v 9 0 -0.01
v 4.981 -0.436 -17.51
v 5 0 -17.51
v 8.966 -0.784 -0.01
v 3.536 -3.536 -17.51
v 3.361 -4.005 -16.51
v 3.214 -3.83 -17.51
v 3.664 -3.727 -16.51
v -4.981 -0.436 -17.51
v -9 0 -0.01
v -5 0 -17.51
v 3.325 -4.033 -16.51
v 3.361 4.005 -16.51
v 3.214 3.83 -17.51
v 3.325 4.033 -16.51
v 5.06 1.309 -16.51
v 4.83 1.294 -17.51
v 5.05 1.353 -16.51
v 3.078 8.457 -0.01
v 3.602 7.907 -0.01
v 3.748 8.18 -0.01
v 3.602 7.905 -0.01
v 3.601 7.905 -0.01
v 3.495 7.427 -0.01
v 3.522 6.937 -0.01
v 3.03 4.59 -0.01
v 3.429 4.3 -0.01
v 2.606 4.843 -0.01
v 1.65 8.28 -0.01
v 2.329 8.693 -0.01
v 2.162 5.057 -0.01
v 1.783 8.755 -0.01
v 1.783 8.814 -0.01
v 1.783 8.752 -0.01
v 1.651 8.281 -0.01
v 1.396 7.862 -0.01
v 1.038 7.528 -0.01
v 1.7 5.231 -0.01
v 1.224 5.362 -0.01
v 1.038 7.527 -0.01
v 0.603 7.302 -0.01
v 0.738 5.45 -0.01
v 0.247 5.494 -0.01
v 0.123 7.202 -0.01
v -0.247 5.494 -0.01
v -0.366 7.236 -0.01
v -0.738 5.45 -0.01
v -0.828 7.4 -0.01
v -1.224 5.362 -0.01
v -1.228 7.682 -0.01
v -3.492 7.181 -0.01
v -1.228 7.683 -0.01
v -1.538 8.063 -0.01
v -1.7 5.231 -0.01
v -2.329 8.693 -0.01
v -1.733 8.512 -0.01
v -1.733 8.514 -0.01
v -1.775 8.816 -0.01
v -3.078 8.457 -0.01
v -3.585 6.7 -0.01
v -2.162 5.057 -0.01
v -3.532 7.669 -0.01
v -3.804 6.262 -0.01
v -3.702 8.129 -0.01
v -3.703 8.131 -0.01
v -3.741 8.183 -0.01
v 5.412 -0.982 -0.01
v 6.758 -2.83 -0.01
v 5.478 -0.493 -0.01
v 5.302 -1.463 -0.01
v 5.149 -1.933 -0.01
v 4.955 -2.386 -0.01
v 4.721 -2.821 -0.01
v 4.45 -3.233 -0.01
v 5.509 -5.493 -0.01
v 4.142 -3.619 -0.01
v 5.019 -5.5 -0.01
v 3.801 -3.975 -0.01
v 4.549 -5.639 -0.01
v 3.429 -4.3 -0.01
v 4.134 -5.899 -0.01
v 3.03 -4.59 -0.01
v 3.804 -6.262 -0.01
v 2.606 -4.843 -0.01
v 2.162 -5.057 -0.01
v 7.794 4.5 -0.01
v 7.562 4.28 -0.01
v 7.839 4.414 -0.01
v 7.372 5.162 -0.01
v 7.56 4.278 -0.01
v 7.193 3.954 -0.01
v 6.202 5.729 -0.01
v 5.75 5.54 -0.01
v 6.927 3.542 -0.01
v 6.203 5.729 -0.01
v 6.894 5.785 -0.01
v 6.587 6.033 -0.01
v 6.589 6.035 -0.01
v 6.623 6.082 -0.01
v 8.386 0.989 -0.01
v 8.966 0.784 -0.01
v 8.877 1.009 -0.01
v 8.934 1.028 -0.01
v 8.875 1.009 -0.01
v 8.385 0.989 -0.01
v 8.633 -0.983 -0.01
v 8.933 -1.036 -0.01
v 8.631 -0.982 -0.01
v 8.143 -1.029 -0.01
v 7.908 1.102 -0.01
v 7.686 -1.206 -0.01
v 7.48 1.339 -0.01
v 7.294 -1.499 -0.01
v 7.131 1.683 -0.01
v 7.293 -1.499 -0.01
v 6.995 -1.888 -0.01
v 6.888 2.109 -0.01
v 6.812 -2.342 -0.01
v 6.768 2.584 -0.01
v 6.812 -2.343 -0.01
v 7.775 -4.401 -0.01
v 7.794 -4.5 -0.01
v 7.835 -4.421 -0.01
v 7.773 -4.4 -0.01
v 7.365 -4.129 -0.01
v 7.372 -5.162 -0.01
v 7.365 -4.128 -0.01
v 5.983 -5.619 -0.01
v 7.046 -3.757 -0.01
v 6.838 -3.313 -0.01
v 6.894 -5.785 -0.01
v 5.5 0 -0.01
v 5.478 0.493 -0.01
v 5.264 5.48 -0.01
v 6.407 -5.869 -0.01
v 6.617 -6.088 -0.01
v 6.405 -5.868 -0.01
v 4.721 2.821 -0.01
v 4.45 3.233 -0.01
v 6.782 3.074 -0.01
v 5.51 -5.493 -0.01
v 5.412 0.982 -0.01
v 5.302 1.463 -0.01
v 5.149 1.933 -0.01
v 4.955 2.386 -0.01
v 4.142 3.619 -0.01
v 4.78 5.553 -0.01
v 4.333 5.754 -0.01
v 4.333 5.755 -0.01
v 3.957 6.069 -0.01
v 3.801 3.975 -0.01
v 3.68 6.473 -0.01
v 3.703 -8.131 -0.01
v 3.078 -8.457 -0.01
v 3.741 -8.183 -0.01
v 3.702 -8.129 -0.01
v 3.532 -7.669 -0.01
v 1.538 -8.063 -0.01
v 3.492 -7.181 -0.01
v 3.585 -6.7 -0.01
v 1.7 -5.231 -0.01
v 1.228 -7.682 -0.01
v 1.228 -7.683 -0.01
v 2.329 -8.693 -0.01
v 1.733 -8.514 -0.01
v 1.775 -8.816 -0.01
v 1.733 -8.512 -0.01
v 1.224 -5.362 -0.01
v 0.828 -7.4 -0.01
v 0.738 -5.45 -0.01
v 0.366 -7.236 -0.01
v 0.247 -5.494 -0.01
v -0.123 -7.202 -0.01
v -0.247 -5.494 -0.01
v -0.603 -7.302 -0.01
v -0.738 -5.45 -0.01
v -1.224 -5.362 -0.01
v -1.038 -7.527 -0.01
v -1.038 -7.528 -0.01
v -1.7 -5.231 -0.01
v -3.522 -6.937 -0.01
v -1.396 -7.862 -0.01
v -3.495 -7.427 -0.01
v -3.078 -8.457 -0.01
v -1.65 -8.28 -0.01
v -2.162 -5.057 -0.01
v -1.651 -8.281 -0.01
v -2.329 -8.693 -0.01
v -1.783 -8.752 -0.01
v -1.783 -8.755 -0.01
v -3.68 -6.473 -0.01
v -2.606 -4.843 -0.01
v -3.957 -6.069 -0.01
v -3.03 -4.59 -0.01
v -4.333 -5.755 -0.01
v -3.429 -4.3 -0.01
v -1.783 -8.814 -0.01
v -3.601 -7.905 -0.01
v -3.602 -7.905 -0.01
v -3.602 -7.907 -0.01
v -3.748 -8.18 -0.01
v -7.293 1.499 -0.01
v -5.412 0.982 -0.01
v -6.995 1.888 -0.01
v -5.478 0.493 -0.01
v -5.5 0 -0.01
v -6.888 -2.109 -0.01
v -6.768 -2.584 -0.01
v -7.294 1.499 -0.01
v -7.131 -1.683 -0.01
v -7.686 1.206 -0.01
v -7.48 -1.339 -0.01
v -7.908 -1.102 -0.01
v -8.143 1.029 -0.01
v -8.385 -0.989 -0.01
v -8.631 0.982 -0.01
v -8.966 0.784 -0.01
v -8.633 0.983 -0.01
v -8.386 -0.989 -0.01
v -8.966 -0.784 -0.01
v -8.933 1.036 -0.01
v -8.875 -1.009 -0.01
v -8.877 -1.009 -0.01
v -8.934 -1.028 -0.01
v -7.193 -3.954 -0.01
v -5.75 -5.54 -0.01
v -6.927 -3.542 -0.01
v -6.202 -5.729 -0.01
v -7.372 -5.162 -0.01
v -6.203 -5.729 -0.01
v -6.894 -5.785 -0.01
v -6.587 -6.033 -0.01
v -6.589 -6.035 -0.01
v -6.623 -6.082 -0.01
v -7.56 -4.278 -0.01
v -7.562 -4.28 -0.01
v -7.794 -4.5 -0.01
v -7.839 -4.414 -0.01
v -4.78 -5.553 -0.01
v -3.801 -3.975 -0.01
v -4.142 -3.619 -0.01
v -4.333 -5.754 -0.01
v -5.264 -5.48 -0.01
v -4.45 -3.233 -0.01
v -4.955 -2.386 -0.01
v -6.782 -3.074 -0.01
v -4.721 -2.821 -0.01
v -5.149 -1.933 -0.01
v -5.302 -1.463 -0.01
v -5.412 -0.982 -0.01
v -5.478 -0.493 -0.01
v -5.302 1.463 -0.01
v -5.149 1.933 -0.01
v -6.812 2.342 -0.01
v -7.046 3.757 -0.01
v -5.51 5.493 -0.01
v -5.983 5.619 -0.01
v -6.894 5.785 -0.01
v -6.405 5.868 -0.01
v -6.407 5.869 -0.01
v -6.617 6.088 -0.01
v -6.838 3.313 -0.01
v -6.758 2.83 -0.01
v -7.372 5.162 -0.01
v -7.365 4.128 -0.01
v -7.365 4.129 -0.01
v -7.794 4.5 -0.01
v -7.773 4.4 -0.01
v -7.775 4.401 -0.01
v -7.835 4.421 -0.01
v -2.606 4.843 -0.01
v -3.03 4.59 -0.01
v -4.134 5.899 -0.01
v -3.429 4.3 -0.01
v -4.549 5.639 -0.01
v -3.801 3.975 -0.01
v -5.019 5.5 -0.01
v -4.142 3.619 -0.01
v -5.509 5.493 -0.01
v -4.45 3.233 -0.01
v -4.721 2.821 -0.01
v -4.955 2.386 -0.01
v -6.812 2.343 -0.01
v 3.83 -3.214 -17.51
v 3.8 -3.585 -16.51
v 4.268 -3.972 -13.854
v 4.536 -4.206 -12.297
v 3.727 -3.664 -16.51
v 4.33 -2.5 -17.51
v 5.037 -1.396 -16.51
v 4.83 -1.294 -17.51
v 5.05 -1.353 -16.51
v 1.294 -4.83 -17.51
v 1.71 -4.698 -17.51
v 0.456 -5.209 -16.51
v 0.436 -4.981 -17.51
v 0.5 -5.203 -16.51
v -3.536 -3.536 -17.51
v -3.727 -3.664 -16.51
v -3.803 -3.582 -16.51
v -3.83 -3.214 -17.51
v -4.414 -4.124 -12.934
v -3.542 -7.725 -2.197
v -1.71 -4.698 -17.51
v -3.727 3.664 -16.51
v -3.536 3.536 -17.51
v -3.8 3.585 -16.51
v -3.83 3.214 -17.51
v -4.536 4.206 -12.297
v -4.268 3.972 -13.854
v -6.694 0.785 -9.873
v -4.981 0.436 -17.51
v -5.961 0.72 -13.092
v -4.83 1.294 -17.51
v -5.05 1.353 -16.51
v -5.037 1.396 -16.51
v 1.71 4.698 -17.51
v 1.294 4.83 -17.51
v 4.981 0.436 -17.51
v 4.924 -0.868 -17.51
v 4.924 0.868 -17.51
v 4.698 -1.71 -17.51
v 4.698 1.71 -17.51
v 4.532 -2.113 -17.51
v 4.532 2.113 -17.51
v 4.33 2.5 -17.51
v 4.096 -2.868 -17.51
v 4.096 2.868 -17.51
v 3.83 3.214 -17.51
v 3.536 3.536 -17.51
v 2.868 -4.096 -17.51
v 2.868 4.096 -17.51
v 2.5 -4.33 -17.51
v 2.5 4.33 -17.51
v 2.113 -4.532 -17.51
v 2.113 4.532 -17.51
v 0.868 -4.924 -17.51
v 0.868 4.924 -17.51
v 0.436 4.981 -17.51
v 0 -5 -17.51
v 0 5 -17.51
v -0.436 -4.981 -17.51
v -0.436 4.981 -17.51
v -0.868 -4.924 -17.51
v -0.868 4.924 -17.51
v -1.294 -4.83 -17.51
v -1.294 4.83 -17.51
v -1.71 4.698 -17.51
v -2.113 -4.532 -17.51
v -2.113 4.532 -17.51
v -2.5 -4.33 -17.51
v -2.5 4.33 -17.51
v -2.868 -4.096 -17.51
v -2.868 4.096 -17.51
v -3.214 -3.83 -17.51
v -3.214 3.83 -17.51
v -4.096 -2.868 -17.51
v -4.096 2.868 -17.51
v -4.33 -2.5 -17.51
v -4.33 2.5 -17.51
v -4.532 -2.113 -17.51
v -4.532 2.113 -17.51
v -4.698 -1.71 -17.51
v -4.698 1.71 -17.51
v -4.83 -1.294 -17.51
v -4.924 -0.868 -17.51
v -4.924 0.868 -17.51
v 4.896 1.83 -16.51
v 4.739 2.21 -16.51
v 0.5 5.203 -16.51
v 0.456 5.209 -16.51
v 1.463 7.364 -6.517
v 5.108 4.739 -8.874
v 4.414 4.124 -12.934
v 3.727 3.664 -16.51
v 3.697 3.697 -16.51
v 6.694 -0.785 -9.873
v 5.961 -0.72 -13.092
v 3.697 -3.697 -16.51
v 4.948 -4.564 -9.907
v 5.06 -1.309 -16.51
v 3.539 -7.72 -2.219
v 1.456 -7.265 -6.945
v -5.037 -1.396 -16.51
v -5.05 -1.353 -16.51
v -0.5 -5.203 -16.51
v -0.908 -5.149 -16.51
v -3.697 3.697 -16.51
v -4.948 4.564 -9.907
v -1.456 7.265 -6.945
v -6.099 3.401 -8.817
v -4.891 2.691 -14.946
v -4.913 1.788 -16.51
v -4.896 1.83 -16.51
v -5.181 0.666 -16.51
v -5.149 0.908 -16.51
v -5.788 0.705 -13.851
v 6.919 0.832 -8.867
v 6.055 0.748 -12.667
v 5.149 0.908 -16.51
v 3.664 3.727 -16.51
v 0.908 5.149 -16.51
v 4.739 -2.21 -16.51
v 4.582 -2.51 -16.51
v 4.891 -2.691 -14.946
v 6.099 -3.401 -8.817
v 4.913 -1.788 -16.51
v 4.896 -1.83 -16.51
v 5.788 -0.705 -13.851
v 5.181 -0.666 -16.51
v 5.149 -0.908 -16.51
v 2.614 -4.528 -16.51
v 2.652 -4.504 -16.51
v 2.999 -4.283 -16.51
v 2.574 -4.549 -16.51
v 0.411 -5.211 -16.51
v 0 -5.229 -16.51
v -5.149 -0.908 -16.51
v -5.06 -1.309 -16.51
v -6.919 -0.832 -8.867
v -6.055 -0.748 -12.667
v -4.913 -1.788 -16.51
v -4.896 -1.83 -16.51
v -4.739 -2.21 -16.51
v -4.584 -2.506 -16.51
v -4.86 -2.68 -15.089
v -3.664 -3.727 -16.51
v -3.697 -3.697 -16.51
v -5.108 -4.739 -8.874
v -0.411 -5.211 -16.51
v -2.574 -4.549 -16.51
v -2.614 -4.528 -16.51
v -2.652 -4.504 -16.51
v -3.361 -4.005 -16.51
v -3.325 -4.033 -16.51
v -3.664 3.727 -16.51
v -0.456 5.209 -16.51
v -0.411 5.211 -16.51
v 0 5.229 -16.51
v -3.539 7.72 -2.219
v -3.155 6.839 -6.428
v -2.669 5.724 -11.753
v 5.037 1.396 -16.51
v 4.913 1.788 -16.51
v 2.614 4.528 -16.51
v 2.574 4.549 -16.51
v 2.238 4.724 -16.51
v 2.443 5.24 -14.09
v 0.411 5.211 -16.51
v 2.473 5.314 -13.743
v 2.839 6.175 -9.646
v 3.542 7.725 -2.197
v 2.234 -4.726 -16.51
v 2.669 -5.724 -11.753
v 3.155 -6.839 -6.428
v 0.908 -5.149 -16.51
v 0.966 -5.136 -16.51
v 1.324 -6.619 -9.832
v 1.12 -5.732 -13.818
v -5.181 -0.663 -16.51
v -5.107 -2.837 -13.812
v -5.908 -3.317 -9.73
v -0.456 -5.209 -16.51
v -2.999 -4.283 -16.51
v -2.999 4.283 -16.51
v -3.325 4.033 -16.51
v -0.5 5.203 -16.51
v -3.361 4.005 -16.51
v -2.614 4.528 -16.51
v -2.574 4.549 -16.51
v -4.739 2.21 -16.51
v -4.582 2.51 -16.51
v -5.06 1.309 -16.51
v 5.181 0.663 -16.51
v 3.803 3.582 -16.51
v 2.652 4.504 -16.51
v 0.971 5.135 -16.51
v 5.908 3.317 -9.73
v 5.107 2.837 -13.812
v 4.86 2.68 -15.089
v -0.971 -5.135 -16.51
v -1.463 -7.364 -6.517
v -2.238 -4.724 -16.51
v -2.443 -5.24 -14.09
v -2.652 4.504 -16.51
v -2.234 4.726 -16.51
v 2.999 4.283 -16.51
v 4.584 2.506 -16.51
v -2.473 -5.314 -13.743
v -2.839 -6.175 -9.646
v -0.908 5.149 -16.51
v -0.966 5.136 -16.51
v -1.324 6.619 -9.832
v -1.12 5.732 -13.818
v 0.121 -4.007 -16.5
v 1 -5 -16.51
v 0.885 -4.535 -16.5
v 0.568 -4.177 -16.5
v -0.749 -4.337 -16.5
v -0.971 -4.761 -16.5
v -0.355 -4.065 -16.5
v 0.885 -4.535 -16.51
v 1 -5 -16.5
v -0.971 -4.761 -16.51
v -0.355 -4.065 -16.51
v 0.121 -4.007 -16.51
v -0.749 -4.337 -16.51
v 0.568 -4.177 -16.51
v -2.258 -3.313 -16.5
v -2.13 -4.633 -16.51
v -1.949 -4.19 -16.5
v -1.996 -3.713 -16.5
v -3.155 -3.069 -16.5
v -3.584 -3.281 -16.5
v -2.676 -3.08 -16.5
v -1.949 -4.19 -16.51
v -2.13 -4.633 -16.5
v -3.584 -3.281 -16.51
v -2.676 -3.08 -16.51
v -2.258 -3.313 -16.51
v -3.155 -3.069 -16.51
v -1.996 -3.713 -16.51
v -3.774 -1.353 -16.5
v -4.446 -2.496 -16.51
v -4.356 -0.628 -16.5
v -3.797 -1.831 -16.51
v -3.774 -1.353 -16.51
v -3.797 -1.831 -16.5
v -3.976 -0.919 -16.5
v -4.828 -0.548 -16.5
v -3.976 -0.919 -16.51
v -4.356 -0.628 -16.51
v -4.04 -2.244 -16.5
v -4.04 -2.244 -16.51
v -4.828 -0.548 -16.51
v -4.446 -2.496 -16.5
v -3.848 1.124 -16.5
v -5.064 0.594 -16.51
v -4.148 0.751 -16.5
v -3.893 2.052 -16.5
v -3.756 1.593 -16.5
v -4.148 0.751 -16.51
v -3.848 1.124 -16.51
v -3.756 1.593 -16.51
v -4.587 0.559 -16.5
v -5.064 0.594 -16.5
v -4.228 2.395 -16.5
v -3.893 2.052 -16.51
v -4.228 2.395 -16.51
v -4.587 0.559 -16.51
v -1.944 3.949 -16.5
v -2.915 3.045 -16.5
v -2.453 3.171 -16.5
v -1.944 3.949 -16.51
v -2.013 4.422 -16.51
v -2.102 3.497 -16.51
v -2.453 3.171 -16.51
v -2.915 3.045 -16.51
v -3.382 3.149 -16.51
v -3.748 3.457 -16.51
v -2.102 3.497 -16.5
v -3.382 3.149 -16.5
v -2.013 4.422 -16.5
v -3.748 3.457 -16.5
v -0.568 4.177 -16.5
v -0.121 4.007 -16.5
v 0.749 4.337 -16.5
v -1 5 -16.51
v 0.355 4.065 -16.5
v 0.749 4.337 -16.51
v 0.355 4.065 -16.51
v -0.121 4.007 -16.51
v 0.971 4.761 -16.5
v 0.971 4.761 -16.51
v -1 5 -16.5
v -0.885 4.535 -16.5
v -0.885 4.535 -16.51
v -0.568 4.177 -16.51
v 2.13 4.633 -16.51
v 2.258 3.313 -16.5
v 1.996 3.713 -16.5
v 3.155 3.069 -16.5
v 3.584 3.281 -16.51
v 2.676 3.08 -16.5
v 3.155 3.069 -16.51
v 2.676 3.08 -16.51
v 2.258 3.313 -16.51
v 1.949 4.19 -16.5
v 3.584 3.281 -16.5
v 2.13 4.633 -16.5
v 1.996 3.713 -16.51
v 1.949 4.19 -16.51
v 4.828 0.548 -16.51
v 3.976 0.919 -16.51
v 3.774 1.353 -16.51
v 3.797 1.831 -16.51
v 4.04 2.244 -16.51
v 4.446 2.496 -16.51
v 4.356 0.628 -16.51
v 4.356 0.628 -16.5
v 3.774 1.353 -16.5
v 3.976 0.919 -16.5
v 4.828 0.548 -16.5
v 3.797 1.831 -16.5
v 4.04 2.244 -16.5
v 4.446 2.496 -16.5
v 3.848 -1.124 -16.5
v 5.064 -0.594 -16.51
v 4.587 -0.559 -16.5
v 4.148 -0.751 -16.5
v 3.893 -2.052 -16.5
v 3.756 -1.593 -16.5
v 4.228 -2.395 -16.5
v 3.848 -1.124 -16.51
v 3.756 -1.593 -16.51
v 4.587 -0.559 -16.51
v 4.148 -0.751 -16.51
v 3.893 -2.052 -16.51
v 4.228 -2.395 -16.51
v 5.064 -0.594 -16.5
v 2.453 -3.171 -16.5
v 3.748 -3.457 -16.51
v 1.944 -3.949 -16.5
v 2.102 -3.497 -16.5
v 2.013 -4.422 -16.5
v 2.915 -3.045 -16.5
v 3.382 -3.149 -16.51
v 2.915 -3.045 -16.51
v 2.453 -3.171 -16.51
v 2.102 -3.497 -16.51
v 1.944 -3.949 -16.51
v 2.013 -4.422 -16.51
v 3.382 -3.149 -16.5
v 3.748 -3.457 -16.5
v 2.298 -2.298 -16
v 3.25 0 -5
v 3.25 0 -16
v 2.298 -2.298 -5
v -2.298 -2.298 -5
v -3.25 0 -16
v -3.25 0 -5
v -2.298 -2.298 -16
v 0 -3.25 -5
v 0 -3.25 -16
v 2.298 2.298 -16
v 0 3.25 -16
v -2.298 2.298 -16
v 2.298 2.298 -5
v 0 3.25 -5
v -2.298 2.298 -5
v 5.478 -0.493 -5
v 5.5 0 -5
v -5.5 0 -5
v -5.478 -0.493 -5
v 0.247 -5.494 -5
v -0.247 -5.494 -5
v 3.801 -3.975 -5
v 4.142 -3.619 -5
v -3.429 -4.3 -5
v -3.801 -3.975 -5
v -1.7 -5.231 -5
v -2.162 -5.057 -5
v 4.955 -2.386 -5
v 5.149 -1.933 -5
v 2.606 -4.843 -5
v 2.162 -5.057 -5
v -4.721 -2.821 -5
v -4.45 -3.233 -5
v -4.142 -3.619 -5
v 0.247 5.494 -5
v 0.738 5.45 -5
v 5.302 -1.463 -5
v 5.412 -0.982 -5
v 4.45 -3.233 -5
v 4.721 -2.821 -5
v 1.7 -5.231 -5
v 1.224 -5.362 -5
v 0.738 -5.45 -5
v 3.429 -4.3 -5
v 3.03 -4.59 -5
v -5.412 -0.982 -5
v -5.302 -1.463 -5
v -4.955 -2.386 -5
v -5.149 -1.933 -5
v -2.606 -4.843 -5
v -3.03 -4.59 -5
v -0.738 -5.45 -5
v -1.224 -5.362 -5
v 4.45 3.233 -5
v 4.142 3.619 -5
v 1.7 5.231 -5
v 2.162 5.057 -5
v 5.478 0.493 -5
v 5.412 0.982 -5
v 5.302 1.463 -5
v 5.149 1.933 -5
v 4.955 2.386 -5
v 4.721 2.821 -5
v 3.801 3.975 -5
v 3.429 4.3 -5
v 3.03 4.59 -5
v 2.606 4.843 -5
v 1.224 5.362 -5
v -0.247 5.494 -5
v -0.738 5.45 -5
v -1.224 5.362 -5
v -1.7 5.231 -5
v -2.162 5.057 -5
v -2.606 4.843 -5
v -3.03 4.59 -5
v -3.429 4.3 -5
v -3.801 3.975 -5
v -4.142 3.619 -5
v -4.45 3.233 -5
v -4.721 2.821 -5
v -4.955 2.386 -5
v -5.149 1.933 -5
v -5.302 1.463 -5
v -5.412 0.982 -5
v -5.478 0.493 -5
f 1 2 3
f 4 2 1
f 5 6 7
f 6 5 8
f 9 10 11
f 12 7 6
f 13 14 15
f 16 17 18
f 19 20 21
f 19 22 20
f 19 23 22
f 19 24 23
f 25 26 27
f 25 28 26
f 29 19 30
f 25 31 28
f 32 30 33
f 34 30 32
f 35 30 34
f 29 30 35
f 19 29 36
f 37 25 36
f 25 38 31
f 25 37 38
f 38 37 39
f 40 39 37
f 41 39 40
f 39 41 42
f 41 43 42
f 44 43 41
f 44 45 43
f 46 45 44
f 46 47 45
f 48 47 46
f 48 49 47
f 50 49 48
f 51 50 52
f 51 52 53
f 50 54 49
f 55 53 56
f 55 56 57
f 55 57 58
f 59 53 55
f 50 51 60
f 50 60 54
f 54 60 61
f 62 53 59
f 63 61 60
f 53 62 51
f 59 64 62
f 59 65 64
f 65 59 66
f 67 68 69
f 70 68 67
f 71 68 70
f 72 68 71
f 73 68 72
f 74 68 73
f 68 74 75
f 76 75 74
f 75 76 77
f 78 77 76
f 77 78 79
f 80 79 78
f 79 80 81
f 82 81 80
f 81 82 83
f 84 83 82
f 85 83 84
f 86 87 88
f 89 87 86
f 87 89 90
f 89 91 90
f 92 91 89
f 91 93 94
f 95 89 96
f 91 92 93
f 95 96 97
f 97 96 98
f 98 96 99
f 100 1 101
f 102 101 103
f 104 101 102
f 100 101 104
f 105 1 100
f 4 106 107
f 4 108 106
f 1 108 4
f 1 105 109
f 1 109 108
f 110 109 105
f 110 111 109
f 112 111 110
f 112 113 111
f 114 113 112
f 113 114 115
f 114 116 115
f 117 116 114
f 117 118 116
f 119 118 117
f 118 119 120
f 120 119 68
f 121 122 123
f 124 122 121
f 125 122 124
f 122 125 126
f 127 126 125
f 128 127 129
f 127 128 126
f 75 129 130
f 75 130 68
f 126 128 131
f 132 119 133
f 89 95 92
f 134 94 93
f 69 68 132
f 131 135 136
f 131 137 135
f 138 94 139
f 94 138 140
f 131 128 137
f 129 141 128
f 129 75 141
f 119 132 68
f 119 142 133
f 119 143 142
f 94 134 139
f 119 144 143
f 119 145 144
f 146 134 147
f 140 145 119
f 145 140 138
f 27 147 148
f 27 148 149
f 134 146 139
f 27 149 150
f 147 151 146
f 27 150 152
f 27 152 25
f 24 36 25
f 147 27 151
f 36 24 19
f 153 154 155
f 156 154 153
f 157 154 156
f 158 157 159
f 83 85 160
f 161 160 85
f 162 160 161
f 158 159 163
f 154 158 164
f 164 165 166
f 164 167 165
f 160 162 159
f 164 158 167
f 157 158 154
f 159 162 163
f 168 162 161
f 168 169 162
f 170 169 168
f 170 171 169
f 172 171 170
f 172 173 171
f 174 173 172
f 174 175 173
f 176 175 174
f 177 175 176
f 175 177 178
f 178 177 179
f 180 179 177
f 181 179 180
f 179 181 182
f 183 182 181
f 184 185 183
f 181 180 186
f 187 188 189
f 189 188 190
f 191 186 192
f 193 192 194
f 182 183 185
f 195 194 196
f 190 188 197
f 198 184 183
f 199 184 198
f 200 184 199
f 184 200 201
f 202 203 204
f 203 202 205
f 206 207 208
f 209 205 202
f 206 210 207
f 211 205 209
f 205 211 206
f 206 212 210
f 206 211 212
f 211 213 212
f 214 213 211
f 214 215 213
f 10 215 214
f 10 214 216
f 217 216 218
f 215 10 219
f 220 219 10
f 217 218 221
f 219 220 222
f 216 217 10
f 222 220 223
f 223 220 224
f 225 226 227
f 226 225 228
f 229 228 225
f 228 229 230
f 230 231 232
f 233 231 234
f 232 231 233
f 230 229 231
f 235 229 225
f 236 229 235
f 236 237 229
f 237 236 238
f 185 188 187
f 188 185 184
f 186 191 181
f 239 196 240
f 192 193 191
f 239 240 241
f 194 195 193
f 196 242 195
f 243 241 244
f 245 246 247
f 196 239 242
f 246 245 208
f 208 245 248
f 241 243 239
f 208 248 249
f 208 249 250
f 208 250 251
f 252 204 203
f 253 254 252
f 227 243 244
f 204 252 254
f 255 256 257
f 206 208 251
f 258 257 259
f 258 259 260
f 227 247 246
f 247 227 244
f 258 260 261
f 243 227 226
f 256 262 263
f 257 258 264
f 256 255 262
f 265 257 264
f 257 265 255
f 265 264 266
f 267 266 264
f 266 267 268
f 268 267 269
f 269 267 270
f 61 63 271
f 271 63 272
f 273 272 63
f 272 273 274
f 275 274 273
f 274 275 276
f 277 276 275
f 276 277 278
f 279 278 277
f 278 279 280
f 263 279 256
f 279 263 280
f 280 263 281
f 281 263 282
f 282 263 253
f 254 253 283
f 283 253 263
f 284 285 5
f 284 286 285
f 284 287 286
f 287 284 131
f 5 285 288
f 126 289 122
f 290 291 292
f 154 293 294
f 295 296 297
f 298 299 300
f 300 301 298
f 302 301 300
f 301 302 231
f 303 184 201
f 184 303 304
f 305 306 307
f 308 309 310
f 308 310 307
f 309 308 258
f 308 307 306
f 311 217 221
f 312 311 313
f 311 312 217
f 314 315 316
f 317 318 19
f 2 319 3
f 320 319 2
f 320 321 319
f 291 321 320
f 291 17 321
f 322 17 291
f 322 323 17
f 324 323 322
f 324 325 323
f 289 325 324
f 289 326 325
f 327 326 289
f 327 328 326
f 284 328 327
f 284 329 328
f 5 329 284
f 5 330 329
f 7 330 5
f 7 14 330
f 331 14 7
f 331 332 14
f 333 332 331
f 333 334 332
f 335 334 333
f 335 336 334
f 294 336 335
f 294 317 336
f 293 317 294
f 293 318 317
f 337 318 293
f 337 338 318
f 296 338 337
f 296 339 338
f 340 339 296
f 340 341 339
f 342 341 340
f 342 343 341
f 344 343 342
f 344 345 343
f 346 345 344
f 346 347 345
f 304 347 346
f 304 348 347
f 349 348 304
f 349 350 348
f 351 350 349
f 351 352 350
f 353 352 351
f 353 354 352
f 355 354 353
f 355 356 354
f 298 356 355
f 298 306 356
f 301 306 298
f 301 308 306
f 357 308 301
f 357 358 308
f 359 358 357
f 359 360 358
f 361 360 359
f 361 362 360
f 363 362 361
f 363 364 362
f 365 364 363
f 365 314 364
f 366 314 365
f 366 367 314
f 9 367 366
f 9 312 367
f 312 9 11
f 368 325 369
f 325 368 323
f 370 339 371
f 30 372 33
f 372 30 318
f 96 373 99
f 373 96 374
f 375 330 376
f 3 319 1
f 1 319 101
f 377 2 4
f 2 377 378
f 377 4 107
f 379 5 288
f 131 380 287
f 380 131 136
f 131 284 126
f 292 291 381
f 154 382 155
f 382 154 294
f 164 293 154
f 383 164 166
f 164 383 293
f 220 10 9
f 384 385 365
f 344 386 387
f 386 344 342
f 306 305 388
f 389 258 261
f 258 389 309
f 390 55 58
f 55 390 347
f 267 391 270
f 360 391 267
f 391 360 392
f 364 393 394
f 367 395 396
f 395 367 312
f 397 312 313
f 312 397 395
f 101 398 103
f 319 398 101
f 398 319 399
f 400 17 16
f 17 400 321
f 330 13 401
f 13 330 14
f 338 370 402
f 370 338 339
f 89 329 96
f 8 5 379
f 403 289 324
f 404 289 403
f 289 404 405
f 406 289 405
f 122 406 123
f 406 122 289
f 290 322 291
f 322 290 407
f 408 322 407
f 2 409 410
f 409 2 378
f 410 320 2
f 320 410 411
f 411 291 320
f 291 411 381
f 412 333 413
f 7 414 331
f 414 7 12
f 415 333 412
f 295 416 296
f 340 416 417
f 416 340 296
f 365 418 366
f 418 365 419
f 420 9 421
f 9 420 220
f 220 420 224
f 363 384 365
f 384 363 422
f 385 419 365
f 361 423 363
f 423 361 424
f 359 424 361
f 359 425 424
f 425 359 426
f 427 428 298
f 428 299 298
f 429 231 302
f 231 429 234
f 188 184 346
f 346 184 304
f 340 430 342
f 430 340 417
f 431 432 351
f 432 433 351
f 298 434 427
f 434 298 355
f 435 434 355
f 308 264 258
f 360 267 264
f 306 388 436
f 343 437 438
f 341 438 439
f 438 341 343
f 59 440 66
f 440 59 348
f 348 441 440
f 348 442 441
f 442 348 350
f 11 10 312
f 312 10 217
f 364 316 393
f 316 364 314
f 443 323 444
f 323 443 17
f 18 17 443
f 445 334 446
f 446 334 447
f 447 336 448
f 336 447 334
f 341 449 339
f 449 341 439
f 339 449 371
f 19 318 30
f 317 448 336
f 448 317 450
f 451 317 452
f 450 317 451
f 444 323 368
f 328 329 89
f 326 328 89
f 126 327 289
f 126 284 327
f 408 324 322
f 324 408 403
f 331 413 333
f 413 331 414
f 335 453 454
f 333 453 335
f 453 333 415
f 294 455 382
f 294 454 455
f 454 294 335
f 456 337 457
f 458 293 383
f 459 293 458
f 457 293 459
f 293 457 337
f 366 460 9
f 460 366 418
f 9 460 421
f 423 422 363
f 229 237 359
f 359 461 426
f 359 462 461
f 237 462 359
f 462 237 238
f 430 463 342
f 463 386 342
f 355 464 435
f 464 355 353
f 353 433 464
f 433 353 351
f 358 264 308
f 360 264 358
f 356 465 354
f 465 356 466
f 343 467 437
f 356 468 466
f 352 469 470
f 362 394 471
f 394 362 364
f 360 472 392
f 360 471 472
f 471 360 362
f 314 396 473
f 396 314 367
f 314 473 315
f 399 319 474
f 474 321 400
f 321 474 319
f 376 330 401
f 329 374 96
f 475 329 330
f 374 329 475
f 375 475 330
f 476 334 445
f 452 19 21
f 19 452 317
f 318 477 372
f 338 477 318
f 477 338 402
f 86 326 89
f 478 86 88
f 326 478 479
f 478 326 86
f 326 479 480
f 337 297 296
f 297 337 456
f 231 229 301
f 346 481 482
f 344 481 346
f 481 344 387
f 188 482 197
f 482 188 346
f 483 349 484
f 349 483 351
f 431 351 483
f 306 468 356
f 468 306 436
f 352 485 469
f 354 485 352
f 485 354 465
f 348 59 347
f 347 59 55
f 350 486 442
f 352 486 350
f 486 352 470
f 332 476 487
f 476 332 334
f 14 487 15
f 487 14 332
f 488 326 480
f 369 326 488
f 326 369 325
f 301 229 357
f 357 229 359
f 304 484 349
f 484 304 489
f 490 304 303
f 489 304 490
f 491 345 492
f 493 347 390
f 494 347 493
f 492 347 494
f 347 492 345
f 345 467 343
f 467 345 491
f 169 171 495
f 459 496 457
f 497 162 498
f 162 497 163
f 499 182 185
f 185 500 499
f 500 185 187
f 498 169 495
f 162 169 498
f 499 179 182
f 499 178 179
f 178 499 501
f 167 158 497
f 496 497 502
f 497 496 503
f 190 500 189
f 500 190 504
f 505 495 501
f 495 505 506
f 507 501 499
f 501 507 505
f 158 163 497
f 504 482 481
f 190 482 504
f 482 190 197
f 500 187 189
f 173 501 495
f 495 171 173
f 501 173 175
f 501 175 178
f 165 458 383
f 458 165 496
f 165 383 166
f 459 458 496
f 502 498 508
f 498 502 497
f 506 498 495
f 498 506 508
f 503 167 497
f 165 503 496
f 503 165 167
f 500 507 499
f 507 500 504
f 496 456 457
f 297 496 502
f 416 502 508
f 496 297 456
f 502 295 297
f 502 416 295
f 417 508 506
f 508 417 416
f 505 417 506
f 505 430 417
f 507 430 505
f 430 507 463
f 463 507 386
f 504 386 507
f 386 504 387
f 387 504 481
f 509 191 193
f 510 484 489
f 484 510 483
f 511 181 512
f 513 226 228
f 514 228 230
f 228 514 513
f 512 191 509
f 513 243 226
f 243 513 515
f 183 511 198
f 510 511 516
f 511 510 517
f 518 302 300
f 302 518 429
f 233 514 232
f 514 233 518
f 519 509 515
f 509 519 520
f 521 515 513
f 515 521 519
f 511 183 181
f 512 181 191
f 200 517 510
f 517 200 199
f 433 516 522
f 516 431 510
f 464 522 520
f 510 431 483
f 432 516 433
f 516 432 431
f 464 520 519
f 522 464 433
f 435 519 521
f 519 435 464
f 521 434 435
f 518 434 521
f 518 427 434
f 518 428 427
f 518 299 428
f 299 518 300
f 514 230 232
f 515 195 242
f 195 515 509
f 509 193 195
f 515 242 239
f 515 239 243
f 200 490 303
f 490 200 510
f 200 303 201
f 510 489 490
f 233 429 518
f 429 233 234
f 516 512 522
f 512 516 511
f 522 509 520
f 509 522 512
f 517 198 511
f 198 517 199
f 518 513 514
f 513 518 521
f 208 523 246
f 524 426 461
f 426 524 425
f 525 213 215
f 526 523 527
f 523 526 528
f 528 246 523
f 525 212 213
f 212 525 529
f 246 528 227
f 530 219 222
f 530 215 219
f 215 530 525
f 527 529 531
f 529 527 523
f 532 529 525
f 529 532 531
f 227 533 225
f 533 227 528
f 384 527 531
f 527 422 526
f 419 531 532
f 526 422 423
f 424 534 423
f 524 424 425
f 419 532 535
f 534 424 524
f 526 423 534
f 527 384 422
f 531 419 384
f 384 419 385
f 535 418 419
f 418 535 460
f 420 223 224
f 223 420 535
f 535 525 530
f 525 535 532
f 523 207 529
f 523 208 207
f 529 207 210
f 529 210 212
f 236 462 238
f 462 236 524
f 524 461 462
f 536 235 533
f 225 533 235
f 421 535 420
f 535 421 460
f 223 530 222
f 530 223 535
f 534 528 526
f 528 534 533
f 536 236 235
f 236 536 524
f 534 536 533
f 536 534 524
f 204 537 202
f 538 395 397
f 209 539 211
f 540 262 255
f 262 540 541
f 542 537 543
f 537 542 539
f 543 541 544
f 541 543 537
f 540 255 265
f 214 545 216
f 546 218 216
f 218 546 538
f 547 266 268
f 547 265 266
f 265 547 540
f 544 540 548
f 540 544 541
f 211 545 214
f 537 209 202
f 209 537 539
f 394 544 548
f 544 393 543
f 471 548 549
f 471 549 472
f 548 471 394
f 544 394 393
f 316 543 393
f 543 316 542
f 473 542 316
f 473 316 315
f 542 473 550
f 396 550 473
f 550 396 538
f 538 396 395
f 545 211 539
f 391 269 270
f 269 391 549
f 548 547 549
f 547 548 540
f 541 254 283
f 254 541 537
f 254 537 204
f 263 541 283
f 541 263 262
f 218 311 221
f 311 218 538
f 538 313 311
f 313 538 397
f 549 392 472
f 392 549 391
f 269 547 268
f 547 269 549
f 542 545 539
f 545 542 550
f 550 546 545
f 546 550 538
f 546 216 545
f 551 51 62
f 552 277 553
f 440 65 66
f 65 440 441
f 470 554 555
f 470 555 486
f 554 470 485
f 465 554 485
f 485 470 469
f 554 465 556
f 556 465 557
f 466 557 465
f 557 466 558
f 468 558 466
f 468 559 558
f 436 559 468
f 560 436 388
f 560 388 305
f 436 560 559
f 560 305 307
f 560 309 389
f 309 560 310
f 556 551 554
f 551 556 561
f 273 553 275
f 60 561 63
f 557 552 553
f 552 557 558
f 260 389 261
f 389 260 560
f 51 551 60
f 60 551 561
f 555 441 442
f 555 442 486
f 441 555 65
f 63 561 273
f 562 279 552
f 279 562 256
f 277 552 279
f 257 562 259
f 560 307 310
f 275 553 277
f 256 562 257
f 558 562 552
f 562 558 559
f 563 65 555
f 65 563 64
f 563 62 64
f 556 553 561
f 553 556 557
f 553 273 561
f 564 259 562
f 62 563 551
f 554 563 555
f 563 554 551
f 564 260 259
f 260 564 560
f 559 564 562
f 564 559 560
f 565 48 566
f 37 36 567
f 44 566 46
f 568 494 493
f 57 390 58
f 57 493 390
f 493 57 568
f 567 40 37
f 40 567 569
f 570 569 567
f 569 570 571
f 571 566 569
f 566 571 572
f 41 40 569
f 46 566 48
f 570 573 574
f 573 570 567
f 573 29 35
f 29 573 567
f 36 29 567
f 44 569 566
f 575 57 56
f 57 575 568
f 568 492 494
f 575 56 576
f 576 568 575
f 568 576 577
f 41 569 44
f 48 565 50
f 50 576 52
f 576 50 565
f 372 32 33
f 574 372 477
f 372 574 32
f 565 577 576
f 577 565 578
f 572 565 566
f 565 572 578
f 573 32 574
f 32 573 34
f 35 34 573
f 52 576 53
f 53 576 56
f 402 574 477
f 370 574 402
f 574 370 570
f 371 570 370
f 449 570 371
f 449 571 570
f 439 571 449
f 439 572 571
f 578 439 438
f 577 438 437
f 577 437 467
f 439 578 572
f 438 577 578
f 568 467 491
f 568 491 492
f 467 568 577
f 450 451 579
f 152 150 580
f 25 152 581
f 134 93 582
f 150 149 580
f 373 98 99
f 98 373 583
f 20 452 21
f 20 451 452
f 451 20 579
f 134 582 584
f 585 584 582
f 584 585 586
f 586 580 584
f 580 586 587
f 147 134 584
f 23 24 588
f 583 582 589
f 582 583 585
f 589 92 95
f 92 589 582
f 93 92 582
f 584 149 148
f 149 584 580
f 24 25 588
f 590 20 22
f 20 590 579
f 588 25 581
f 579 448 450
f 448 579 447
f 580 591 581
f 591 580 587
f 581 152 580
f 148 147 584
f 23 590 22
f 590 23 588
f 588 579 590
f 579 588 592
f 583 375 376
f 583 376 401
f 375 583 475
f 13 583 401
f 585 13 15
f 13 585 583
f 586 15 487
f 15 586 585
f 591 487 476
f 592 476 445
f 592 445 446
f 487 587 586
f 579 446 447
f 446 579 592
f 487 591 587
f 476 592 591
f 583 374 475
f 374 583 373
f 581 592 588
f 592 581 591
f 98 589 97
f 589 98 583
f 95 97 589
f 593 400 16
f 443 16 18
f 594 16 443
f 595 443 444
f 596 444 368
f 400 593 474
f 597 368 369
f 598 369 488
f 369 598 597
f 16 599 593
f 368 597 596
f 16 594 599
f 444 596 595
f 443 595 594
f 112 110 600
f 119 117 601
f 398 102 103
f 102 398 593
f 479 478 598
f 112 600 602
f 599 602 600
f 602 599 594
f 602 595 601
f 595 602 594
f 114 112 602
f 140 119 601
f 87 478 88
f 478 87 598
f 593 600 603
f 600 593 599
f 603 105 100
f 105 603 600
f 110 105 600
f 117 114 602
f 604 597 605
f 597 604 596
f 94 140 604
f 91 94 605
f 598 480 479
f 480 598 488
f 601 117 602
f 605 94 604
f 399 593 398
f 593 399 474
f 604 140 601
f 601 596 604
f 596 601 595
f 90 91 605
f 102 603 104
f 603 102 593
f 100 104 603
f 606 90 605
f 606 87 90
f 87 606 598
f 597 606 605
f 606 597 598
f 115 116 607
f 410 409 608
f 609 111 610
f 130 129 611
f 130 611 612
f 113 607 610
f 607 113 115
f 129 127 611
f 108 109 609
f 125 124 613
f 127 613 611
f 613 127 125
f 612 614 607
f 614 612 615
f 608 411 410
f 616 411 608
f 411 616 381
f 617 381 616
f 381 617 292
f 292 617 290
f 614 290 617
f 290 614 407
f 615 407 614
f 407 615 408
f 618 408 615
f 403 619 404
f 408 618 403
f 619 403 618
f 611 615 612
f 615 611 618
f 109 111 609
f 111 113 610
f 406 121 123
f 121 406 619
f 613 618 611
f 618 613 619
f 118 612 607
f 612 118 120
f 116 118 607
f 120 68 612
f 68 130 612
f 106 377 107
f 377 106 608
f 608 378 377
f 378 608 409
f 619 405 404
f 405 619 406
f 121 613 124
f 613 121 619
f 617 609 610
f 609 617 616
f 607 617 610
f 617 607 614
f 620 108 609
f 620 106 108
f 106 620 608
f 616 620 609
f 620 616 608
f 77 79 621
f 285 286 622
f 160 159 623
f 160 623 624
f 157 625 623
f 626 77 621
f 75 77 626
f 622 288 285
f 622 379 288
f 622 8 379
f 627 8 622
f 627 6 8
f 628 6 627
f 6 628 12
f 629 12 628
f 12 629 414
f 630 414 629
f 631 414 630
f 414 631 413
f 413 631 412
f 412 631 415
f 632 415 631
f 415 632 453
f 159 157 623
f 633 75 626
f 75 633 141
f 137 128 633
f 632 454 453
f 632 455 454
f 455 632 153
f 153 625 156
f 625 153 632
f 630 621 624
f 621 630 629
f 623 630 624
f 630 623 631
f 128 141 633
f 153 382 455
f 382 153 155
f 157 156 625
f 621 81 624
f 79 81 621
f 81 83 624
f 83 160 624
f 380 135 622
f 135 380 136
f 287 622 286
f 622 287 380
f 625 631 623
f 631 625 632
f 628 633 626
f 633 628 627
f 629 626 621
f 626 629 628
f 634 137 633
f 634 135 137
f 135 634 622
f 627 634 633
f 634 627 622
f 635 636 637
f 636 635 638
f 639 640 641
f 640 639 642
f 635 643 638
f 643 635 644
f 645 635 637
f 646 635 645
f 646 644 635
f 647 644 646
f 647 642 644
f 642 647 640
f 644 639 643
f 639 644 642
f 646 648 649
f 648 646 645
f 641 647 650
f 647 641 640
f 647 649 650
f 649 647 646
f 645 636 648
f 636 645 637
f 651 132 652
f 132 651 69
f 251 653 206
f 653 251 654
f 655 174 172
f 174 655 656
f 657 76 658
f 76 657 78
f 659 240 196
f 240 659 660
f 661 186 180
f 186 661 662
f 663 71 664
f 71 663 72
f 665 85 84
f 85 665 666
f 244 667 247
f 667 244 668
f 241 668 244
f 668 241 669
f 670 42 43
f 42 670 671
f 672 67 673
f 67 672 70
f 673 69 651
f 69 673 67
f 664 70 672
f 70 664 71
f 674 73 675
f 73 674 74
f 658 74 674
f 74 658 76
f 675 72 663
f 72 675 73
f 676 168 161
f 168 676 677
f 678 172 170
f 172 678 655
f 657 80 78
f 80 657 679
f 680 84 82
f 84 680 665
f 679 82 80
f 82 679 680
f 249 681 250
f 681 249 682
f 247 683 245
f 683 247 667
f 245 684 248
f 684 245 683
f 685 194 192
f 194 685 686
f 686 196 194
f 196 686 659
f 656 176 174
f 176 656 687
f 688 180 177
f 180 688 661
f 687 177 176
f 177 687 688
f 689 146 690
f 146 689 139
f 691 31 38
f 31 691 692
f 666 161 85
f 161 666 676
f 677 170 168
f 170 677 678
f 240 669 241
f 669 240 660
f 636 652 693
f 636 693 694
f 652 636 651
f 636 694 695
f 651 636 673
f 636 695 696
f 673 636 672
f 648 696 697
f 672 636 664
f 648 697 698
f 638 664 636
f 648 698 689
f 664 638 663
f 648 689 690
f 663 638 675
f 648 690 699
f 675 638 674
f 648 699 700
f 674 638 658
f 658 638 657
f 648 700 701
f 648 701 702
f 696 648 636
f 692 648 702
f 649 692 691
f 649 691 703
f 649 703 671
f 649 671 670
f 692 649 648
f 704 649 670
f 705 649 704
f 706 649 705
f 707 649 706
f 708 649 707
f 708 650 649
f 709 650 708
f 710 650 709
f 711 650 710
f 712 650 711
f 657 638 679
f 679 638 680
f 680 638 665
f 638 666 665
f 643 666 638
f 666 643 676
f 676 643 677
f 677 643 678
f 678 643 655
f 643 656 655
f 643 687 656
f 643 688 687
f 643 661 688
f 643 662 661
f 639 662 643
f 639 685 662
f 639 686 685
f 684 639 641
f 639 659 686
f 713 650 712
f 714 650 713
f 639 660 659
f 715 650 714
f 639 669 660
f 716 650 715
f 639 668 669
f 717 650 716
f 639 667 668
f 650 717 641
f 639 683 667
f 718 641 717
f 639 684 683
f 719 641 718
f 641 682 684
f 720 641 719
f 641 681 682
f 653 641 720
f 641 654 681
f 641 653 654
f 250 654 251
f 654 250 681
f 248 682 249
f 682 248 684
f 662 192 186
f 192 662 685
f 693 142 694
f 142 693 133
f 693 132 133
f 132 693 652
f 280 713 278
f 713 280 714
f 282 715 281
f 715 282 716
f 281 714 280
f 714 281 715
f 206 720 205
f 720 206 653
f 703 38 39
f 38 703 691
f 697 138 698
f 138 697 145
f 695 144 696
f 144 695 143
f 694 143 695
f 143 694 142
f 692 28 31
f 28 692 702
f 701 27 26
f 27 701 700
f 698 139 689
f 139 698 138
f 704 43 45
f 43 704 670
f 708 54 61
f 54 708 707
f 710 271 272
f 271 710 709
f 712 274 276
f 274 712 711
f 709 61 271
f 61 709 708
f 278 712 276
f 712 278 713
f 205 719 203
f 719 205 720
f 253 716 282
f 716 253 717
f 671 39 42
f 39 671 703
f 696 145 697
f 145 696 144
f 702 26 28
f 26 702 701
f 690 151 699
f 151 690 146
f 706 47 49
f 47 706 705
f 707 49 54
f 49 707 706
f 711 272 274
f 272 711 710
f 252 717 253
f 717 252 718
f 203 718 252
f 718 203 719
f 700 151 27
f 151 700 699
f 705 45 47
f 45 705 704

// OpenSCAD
// Based on:
// https://www.youmagine.com/designs/knob-for-potentiometer-parametric
// By John Ridley

// Increase the resolution of default shapes
$fa = 5; // Minimum angle for fragments [degrees]
$fs = 0.5; // Minimum fragment size [mm]

od = 18;
odt = 10;
mainh = 0;
th = 17.5-mainh;

// knurling
kd = 7/2;
kn = 10;

shaftd = 6.5;

rotate([180,0,0])
difference()
{
    translate([0,0,0.01])
	union()
	{
		cylinder(d=od, h=mainh);
		translate([0,0,mainh])
		cylinder(d1=od, d2=odt, h=th);
	}

	// knurling
	for (x=[0:kn])
        rotate([0,0,x * (360/kn)])
            translate([0,od/2,0])
                hull() {
                    //rotate([10,0,0]) cylinder(d1=kd, d2=kd, h=mainh+th-1);
                    cylinder(d=2*od/kn, h=0.01);
                    translate([0,(odt-od)/2,mainh+th-1])
                        cylinder(d=2*odt/kn, h=0.01);
                }

	// shaft hole
	cylinder(d=shaftd, h=mainh+th - 1.5, $fn = 8);

	// relief at bottom
	cylinder(d=od - kd*2, h=5);

}
